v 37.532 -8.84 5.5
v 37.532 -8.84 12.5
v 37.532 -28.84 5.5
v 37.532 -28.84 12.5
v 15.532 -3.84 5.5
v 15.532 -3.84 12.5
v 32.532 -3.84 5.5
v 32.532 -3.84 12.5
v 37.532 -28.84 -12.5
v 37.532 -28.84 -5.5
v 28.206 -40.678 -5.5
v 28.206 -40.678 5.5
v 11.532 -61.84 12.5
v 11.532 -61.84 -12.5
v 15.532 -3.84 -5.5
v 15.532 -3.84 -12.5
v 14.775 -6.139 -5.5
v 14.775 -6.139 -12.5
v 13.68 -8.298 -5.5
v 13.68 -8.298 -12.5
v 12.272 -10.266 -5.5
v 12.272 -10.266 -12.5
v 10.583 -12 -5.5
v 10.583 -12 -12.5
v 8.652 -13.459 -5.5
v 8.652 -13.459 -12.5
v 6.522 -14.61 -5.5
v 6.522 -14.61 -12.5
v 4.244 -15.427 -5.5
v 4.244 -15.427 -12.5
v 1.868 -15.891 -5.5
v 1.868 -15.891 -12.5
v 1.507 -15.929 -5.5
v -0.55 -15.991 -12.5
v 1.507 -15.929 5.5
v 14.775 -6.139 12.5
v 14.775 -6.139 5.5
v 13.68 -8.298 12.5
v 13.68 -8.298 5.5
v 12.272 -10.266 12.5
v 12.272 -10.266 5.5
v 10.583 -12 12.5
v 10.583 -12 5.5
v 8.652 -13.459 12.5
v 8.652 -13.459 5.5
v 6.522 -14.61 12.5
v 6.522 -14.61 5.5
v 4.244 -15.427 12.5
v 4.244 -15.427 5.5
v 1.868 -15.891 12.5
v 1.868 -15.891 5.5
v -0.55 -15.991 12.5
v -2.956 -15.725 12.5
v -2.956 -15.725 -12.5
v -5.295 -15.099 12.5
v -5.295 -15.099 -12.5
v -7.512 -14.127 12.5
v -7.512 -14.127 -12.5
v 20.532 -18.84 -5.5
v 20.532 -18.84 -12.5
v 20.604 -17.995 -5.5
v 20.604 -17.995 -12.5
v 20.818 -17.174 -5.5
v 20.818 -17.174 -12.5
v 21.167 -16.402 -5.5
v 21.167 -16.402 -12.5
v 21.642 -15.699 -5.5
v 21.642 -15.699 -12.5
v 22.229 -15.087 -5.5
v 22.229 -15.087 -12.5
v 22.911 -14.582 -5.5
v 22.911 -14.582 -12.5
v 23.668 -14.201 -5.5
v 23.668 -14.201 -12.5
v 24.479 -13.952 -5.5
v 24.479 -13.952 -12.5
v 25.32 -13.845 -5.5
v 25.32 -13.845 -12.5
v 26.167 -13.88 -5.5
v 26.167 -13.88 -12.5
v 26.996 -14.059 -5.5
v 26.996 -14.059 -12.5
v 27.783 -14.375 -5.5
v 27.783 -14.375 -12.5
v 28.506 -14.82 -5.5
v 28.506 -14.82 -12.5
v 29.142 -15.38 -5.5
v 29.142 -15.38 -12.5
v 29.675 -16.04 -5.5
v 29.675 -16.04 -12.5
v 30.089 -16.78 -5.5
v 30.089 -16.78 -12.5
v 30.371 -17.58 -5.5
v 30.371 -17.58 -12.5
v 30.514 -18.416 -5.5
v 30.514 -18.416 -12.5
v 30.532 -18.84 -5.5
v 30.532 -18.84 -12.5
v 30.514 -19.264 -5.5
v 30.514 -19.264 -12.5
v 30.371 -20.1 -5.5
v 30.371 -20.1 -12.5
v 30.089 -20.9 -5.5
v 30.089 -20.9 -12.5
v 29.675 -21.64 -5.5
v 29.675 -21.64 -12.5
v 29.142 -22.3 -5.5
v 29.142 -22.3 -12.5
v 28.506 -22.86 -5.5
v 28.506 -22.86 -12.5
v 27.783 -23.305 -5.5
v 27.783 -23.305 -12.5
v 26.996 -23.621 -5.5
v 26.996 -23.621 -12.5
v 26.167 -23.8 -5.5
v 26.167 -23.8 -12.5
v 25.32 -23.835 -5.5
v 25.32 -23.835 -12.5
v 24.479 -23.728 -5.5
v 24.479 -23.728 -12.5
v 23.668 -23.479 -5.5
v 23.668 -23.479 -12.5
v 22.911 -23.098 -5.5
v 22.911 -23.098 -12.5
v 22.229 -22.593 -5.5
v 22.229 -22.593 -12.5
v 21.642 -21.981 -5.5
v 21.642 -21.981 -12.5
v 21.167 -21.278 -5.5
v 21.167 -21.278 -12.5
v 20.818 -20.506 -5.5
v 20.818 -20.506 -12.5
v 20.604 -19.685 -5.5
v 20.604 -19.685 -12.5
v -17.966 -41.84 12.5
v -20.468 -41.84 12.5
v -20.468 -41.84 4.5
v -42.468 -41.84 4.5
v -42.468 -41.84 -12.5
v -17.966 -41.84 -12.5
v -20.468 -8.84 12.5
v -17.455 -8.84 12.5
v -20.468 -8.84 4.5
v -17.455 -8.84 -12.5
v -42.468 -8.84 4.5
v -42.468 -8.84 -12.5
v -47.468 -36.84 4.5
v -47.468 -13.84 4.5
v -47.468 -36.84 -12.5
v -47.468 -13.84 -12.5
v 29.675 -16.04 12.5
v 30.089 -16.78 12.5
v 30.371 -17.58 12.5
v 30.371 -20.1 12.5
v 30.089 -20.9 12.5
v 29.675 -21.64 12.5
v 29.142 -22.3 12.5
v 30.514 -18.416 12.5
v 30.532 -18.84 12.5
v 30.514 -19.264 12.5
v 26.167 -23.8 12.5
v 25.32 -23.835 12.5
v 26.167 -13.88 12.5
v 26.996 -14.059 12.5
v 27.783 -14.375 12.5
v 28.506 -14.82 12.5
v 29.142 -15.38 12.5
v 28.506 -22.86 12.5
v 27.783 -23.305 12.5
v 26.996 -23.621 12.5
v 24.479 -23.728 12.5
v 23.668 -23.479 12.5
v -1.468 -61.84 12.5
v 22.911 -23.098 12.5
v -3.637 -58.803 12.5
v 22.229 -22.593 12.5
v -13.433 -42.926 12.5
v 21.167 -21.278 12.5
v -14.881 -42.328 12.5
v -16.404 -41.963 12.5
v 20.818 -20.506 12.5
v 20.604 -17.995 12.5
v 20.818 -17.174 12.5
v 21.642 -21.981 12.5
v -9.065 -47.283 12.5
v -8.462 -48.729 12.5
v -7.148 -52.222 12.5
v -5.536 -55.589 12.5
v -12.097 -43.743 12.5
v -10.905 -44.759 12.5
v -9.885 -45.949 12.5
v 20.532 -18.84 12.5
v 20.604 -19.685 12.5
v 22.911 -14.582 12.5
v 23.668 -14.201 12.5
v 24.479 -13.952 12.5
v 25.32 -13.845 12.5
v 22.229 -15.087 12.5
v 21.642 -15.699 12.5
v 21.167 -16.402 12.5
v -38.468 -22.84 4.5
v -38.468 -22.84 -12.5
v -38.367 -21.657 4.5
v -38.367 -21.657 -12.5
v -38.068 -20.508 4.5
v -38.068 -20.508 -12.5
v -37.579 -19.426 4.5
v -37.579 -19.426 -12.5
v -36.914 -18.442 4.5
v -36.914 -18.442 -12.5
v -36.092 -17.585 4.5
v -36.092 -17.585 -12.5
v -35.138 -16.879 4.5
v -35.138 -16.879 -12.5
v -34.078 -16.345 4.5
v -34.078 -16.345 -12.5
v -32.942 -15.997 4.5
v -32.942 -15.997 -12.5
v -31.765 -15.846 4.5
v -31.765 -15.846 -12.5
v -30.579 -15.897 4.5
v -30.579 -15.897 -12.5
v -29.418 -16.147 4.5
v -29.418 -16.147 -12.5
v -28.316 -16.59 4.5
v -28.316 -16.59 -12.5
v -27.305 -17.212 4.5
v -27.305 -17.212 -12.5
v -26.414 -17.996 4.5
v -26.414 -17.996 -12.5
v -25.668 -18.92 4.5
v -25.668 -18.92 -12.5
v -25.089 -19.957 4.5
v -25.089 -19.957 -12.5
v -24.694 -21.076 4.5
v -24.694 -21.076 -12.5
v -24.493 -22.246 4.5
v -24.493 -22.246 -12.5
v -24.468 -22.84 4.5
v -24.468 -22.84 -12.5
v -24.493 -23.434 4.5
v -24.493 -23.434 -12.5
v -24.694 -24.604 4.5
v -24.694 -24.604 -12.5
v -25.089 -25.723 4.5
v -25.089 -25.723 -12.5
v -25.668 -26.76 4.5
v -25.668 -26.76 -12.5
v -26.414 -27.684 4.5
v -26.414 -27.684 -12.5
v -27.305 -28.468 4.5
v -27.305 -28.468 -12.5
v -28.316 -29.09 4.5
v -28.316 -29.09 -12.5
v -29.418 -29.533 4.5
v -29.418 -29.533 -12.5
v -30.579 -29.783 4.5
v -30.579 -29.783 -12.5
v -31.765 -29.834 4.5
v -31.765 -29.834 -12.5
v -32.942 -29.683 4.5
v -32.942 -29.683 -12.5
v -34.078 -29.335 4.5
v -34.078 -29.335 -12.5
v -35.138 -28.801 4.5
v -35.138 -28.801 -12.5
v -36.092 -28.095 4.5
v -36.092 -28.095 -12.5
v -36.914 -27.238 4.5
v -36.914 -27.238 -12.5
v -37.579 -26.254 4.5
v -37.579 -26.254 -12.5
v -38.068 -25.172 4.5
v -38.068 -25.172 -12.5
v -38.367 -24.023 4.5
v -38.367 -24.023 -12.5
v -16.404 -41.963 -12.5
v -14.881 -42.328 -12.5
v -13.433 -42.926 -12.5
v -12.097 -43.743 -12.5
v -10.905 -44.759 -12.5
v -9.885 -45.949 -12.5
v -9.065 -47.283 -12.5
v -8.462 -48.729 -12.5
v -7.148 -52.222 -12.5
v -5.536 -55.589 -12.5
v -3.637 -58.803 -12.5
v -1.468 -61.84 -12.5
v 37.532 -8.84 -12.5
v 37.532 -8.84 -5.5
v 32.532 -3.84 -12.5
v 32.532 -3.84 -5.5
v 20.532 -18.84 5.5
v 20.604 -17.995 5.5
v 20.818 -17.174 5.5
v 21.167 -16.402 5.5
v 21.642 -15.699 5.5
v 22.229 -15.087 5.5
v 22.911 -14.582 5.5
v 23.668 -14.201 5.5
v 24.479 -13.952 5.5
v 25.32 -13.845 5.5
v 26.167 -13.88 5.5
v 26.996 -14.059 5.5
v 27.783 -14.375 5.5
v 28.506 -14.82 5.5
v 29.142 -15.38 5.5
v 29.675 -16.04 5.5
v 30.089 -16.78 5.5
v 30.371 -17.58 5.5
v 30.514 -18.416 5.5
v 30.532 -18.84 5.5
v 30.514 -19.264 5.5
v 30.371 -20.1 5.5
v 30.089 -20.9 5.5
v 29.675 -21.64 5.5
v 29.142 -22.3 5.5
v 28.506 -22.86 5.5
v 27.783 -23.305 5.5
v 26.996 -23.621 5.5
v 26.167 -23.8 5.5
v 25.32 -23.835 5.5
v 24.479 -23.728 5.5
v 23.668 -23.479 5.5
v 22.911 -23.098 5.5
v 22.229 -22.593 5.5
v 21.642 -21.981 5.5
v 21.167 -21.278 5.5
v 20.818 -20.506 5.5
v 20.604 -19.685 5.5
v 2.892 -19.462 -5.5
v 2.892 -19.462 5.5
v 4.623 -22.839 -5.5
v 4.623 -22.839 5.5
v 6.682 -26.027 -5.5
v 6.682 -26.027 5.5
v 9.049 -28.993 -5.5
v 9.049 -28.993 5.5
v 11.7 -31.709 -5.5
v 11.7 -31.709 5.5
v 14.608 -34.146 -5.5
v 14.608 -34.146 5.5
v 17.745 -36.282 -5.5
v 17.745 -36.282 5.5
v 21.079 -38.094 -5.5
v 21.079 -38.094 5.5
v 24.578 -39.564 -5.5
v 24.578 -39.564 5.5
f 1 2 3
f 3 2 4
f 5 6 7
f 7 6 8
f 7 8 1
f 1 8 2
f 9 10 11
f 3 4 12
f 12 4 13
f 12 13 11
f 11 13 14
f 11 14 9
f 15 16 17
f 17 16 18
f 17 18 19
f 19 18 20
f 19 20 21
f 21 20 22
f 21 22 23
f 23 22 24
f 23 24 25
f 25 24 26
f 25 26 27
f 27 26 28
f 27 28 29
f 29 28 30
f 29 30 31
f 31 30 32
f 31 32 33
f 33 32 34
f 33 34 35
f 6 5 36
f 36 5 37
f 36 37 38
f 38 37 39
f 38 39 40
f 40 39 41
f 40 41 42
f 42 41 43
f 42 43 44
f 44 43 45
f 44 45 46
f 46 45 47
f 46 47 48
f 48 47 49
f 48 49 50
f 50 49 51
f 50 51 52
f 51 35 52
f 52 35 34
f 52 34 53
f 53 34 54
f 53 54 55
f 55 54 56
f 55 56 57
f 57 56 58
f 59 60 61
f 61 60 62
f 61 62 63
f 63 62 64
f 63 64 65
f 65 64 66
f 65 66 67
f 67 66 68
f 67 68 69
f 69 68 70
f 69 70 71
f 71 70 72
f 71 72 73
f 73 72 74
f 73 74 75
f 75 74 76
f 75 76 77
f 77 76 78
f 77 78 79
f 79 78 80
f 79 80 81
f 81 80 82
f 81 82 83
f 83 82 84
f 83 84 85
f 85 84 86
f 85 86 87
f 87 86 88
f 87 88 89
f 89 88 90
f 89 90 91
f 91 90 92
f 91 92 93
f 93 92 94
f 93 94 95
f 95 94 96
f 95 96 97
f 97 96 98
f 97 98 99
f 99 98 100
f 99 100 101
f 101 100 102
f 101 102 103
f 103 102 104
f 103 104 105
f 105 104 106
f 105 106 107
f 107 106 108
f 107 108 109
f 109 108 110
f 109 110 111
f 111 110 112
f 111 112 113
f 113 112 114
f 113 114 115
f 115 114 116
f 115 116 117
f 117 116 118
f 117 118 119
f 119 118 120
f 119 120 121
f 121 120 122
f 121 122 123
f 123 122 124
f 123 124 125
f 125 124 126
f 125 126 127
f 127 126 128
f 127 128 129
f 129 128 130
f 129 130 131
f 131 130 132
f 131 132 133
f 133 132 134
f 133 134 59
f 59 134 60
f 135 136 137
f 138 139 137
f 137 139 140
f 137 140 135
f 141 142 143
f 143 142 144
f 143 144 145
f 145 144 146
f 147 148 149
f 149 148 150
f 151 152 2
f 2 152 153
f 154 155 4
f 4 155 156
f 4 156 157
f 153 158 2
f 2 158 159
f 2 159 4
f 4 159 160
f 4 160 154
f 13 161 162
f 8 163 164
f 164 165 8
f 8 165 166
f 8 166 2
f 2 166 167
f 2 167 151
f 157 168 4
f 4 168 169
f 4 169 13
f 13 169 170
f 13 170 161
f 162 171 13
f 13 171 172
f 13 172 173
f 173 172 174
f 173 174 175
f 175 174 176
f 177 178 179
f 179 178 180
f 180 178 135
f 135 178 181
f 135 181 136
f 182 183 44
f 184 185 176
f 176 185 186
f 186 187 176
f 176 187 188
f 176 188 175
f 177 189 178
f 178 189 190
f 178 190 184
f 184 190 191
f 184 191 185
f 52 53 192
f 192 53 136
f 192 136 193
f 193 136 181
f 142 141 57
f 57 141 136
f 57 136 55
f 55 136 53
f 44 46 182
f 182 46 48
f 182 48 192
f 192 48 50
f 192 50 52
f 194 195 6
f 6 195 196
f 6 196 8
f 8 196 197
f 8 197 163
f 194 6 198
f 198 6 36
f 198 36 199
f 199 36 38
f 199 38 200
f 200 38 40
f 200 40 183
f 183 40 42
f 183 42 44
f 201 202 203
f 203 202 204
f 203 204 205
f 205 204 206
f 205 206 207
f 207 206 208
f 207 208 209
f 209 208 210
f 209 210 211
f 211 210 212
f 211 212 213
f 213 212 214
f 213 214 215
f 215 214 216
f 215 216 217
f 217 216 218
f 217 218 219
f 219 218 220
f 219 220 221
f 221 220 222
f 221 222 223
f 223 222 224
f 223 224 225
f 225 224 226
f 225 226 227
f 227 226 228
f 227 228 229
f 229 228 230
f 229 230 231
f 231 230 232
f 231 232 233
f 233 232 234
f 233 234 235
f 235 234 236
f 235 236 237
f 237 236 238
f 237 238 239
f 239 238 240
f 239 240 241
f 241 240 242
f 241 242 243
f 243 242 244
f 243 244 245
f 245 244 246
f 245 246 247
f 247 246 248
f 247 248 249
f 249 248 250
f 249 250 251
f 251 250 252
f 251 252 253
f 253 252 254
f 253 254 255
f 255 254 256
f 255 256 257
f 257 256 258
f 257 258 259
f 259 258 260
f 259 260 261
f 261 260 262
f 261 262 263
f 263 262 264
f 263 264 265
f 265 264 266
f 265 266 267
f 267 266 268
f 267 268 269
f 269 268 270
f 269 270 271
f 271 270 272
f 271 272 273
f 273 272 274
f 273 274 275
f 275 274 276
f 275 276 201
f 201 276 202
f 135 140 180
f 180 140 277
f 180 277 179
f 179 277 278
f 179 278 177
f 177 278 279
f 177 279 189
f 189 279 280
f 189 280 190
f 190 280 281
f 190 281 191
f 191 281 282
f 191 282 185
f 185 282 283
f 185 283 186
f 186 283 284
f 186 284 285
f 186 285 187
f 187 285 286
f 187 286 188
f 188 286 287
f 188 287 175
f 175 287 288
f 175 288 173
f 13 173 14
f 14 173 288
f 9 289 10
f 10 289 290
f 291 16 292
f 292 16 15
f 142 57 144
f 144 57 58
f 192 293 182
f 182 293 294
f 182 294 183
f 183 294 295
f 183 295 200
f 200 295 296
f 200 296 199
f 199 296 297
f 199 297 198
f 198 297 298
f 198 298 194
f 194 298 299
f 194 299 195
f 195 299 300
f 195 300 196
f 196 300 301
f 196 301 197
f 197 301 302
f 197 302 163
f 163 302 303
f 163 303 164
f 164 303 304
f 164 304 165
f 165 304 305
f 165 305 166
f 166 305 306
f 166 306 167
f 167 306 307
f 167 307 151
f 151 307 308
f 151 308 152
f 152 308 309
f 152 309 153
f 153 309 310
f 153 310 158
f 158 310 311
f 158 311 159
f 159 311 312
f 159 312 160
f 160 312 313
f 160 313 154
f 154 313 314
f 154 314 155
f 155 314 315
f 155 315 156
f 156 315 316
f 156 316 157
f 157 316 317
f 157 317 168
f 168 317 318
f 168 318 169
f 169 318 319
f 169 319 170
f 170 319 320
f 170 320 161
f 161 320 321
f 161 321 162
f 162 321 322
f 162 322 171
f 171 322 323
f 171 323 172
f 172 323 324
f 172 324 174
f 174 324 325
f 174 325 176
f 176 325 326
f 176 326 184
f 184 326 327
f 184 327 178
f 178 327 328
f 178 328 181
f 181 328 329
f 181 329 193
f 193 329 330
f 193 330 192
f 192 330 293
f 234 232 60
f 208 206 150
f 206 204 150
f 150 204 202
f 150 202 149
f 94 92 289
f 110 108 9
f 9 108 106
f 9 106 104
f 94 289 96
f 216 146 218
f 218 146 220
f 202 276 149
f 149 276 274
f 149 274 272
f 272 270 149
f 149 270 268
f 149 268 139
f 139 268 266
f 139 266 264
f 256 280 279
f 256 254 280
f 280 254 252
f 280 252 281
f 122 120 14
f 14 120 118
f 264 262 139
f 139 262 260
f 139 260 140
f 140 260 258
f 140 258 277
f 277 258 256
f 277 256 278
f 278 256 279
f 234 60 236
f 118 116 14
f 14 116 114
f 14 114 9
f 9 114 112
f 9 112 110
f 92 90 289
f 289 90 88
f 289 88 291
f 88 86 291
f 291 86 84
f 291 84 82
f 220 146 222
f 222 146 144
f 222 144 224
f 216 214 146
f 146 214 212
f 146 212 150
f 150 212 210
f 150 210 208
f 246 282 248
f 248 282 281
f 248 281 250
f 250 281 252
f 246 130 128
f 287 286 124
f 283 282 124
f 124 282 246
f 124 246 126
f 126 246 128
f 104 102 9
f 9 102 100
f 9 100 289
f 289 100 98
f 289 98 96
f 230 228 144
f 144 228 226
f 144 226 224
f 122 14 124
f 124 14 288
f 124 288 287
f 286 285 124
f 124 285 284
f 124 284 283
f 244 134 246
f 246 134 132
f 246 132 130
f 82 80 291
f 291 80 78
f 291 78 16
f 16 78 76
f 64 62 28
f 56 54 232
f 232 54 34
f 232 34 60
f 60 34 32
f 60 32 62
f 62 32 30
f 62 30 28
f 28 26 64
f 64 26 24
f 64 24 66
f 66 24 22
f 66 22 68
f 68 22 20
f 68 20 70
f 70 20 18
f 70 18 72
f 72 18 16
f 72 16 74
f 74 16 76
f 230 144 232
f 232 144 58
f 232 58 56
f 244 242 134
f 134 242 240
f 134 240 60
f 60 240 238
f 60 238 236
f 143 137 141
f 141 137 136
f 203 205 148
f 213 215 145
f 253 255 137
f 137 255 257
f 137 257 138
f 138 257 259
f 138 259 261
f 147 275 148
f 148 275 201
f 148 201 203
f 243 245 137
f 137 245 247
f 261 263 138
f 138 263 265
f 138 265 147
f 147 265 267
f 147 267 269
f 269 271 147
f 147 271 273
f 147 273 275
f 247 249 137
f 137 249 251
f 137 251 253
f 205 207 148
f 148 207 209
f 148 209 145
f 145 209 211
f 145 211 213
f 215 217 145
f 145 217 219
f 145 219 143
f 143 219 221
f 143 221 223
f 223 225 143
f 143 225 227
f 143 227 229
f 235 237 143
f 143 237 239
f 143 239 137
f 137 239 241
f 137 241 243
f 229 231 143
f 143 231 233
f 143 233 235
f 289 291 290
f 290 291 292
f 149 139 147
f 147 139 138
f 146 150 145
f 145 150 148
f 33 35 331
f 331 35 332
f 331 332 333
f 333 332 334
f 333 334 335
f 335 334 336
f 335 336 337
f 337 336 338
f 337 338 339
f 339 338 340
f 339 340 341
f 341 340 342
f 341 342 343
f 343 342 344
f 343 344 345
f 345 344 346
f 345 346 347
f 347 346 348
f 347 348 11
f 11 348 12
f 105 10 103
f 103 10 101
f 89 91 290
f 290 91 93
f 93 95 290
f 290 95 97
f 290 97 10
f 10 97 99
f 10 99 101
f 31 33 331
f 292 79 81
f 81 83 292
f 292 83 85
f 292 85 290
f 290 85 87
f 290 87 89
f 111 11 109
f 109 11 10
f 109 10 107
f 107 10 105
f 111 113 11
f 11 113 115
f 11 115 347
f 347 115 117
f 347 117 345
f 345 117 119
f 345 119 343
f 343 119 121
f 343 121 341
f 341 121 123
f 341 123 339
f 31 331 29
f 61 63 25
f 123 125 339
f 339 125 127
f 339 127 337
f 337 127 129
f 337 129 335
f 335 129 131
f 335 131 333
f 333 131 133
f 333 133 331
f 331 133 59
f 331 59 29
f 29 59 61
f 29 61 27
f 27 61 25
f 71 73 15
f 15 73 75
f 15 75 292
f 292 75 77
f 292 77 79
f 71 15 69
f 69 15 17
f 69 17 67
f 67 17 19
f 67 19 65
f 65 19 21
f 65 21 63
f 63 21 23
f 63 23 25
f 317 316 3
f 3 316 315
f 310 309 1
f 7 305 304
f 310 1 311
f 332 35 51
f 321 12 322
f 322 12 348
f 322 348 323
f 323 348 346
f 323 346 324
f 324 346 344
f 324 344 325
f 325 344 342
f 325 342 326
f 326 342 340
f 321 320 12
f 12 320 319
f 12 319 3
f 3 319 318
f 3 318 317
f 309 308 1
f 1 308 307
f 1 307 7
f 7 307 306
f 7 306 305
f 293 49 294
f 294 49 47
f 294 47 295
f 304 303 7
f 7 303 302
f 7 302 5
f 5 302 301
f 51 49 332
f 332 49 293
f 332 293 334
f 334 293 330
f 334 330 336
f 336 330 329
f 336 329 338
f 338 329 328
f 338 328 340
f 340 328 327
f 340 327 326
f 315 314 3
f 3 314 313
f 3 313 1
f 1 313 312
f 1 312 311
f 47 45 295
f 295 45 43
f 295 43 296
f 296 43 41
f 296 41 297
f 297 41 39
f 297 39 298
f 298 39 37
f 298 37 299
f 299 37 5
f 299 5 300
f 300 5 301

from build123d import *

# Parameters (mm, degrees)
SKETCH1_R           = 5
SKETCH1_R_2         = 7
BOSS_EXTRUDE1_DEPTH = 12.5
CUT_EXTRUDE1_START  = 4.5
SKETCH1_3_W         = 27
SKETCH1_3_H         = 33
SKETCH1_3_R         = 7
CUT_EXTRUDE1_DEPTH  = 8
CHAMFER1_SIZE       = 5
CUT_EXTRUDE2_DEPTH  = 5.5


with BuildPart() as part:
    # Sketch1 → Boss-Extrude1 (new, symmetric)
    with BuildSketch(Plane.XY):
        with BuildLine():
            Line((37.532366207, -3.84), (15.532366207, -3.84))
            ThreePointArc((15.532366207, -3.84), (6.522255442, -14.610276655), (-7.511545005, -14.127161486))
            Line((-7.511545005, -14.127161486), (-17.455249537, -8.84))
            Line((-17.455249537, -8.84), (-47.467633793, -8.84))
            Line((-47.467633793, -8.84), (-47.467633793, -41.84))
            Line((-47.467633793, -41.84), (-17.965724565, -41.84))
            ThreePointArc((-17.965724565, -41.84), (-12.096906214, -43.743274047), (-8.462081793, -48.728605767))
            ThreePointArc((-8.462081793, -48.728605767), (-5.535546312, -55.58874428), (-1.467633793, -61.84))
            Line((-1.467633793, -61.84), (11.532366207, -61.84))
            Line((11.532366207, -61.84), (37.532366207, -28.84))
            Line((37.532366207, -28.84), (37.532366207, -3.84))
        make_face()
        with Locations((25.532366207, -18.84)):
            Circle(SKETCH1_R, mode=Mode.SUBTRACT)
        with Locations((-31.467633793, -22.84)):
            Circle(SKETCH1_R_2, mode=Mode.SUBTRACT)
    extrude(amount=BOSS_EXTRUDE1_DEPTH, both=True)

    # Sketch1<3> → Cut-Extrude1 (cut)
    with BuildSketch(Plane.XY.offset(CUT_EXTRUDE1_START)):
        with Locations((-33.967633793, -25.34)):
            Rectangle(SKETCH1_3_W, SKETCH1_3_H)
        with Locations((-31.467633793, -22.84)):
            Circle(SKETCH1_3_R, mode=Mode.SUBTRACT)
    extrude(amount=CUT_EXTRUDE1_DEPTH, mode=Mode.SUBTRACT)

    # Chamfer1
    chamfer1_edges = [part.edges().sort_by_distance(p)[0] for p in [
        (37.532366207, -3.84, 0),
        (-47.467633793, -41.84, -4),
        (-47.467633793, -8.84, -4),
    ]]
    chamfer(chamfer1_edges, length=CHAMFER1_SIZE)

    # Sketch4 → Cut-Extrude2 (cut, symmetric)
    with BuildSketch(Plane.XY):
        with BuildLine():
            Line((37.532366207, -8.84), (37.532366207, -28.84))
            Line((37.532366207, -28.84), (28.205719919, -40.677666444))
            ThreePointArc((28.205719919, -40.677666444), (11.699513519, -31.708687123), (1.506567213, -15.928912557))
            ThreePointArc((1.506567213, -15.928912557), (10.445897028, -12.1195394), (15.532366207, -3.84))
            Line((15.532366207, -3.84), (32.532366207, -3.84))
            Line((32.532366207, -3.84), (37.532366207, -8.84))
        make_face()
    extrude(amount=CUT_EXTRUDE2_DEPTH, both=True, mode=Mode.SUBTRACT)


solid = part.part
